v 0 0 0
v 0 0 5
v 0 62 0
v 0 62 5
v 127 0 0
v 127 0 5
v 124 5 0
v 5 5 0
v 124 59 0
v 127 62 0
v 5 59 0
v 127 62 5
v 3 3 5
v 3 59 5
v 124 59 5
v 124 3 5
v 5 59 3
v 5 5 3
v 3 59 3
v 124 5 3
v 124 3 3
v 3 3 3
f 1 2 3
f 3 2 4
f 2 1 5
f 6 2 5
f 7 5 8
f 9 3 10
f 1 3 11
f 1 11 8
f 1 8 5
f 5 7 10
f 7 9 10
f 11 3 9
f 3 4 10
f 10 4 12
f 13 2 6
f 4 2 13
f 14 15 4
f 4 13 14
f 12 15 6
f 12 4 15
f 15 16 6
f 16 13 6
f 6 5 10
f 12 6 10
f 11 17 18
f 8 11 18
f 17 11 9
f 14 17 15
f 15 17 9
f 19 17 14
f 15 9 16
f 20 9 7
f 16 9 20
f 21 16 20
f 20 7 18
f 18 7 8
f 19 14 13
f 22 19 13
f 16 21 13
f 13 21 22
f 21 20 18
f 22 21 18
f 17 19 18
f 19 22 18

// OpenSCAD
//---------------------------------------------------------------------------
// Casing for the Microboard IO Dock
//---------------------------------------------------------------------------
// 24-Feb-2014 ShaneG
//
// A basic holder for the IO dock. This simply keeps it safe from short
// circuiting on the bench.
//---------------------------------------------------------------------------

//--- Dimensions of the PCB
PCB_WIDTH  = 121;
PCB_HEIGHT = 56;
PCB_DEPTH  = 2;

//--- Borders and spacing
BORDER_SIZE = 3;
BORDER_LIP  = 2;
CASE_DEPTH  = 5;

// Create the main block
difference() {
  cube(size = [ PCB_WIDTH + (2 * BORDER_SIZE), PCB_HEIGHT + (2 * BORDER_SIZE), CASE_DEPTH ], center = false);
  // Cut away the hole for the PCB itself
  translate(v = [ BORDER_SIZE, BORDER_SIZE, CASE_DEPTH - PCB_DEPTH ]) {
    cube(size = [ PCB_WIDTH, PCB_HEIGHT, 2 * PCB_DEPTH ], center = false);
    }
  // Cut away the main body
  translate(v = [ BORDER_SIZE + BORDER_LIP, BORDER_SIZE + BORDER_LIP, -CASE_DEPTH ]) {
    cube(size = [ PCB_WIDTH - BORDER_LIP, PCB_HEIGHT - BORDER_LIP, 2 * CASE_DEPTH ], center = false);
    }
  }
